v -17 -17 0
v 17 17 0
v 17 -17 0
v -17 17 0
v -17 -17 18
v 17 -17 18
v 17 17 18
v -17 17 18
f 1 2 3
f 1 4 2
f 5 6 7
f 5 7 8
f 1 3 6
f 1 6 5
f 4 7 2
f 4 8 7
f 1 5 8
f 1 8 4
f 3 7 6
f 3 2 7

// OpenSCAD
// Gemini 4 Argon Parametric OpenSCAD — PRT-06: Lobed M5 Brass-Insert Rosette Knobs (×3)
$fn = 64;
translate([-17.00, -17.00, 0])
  cube([34, 34, 18]);
